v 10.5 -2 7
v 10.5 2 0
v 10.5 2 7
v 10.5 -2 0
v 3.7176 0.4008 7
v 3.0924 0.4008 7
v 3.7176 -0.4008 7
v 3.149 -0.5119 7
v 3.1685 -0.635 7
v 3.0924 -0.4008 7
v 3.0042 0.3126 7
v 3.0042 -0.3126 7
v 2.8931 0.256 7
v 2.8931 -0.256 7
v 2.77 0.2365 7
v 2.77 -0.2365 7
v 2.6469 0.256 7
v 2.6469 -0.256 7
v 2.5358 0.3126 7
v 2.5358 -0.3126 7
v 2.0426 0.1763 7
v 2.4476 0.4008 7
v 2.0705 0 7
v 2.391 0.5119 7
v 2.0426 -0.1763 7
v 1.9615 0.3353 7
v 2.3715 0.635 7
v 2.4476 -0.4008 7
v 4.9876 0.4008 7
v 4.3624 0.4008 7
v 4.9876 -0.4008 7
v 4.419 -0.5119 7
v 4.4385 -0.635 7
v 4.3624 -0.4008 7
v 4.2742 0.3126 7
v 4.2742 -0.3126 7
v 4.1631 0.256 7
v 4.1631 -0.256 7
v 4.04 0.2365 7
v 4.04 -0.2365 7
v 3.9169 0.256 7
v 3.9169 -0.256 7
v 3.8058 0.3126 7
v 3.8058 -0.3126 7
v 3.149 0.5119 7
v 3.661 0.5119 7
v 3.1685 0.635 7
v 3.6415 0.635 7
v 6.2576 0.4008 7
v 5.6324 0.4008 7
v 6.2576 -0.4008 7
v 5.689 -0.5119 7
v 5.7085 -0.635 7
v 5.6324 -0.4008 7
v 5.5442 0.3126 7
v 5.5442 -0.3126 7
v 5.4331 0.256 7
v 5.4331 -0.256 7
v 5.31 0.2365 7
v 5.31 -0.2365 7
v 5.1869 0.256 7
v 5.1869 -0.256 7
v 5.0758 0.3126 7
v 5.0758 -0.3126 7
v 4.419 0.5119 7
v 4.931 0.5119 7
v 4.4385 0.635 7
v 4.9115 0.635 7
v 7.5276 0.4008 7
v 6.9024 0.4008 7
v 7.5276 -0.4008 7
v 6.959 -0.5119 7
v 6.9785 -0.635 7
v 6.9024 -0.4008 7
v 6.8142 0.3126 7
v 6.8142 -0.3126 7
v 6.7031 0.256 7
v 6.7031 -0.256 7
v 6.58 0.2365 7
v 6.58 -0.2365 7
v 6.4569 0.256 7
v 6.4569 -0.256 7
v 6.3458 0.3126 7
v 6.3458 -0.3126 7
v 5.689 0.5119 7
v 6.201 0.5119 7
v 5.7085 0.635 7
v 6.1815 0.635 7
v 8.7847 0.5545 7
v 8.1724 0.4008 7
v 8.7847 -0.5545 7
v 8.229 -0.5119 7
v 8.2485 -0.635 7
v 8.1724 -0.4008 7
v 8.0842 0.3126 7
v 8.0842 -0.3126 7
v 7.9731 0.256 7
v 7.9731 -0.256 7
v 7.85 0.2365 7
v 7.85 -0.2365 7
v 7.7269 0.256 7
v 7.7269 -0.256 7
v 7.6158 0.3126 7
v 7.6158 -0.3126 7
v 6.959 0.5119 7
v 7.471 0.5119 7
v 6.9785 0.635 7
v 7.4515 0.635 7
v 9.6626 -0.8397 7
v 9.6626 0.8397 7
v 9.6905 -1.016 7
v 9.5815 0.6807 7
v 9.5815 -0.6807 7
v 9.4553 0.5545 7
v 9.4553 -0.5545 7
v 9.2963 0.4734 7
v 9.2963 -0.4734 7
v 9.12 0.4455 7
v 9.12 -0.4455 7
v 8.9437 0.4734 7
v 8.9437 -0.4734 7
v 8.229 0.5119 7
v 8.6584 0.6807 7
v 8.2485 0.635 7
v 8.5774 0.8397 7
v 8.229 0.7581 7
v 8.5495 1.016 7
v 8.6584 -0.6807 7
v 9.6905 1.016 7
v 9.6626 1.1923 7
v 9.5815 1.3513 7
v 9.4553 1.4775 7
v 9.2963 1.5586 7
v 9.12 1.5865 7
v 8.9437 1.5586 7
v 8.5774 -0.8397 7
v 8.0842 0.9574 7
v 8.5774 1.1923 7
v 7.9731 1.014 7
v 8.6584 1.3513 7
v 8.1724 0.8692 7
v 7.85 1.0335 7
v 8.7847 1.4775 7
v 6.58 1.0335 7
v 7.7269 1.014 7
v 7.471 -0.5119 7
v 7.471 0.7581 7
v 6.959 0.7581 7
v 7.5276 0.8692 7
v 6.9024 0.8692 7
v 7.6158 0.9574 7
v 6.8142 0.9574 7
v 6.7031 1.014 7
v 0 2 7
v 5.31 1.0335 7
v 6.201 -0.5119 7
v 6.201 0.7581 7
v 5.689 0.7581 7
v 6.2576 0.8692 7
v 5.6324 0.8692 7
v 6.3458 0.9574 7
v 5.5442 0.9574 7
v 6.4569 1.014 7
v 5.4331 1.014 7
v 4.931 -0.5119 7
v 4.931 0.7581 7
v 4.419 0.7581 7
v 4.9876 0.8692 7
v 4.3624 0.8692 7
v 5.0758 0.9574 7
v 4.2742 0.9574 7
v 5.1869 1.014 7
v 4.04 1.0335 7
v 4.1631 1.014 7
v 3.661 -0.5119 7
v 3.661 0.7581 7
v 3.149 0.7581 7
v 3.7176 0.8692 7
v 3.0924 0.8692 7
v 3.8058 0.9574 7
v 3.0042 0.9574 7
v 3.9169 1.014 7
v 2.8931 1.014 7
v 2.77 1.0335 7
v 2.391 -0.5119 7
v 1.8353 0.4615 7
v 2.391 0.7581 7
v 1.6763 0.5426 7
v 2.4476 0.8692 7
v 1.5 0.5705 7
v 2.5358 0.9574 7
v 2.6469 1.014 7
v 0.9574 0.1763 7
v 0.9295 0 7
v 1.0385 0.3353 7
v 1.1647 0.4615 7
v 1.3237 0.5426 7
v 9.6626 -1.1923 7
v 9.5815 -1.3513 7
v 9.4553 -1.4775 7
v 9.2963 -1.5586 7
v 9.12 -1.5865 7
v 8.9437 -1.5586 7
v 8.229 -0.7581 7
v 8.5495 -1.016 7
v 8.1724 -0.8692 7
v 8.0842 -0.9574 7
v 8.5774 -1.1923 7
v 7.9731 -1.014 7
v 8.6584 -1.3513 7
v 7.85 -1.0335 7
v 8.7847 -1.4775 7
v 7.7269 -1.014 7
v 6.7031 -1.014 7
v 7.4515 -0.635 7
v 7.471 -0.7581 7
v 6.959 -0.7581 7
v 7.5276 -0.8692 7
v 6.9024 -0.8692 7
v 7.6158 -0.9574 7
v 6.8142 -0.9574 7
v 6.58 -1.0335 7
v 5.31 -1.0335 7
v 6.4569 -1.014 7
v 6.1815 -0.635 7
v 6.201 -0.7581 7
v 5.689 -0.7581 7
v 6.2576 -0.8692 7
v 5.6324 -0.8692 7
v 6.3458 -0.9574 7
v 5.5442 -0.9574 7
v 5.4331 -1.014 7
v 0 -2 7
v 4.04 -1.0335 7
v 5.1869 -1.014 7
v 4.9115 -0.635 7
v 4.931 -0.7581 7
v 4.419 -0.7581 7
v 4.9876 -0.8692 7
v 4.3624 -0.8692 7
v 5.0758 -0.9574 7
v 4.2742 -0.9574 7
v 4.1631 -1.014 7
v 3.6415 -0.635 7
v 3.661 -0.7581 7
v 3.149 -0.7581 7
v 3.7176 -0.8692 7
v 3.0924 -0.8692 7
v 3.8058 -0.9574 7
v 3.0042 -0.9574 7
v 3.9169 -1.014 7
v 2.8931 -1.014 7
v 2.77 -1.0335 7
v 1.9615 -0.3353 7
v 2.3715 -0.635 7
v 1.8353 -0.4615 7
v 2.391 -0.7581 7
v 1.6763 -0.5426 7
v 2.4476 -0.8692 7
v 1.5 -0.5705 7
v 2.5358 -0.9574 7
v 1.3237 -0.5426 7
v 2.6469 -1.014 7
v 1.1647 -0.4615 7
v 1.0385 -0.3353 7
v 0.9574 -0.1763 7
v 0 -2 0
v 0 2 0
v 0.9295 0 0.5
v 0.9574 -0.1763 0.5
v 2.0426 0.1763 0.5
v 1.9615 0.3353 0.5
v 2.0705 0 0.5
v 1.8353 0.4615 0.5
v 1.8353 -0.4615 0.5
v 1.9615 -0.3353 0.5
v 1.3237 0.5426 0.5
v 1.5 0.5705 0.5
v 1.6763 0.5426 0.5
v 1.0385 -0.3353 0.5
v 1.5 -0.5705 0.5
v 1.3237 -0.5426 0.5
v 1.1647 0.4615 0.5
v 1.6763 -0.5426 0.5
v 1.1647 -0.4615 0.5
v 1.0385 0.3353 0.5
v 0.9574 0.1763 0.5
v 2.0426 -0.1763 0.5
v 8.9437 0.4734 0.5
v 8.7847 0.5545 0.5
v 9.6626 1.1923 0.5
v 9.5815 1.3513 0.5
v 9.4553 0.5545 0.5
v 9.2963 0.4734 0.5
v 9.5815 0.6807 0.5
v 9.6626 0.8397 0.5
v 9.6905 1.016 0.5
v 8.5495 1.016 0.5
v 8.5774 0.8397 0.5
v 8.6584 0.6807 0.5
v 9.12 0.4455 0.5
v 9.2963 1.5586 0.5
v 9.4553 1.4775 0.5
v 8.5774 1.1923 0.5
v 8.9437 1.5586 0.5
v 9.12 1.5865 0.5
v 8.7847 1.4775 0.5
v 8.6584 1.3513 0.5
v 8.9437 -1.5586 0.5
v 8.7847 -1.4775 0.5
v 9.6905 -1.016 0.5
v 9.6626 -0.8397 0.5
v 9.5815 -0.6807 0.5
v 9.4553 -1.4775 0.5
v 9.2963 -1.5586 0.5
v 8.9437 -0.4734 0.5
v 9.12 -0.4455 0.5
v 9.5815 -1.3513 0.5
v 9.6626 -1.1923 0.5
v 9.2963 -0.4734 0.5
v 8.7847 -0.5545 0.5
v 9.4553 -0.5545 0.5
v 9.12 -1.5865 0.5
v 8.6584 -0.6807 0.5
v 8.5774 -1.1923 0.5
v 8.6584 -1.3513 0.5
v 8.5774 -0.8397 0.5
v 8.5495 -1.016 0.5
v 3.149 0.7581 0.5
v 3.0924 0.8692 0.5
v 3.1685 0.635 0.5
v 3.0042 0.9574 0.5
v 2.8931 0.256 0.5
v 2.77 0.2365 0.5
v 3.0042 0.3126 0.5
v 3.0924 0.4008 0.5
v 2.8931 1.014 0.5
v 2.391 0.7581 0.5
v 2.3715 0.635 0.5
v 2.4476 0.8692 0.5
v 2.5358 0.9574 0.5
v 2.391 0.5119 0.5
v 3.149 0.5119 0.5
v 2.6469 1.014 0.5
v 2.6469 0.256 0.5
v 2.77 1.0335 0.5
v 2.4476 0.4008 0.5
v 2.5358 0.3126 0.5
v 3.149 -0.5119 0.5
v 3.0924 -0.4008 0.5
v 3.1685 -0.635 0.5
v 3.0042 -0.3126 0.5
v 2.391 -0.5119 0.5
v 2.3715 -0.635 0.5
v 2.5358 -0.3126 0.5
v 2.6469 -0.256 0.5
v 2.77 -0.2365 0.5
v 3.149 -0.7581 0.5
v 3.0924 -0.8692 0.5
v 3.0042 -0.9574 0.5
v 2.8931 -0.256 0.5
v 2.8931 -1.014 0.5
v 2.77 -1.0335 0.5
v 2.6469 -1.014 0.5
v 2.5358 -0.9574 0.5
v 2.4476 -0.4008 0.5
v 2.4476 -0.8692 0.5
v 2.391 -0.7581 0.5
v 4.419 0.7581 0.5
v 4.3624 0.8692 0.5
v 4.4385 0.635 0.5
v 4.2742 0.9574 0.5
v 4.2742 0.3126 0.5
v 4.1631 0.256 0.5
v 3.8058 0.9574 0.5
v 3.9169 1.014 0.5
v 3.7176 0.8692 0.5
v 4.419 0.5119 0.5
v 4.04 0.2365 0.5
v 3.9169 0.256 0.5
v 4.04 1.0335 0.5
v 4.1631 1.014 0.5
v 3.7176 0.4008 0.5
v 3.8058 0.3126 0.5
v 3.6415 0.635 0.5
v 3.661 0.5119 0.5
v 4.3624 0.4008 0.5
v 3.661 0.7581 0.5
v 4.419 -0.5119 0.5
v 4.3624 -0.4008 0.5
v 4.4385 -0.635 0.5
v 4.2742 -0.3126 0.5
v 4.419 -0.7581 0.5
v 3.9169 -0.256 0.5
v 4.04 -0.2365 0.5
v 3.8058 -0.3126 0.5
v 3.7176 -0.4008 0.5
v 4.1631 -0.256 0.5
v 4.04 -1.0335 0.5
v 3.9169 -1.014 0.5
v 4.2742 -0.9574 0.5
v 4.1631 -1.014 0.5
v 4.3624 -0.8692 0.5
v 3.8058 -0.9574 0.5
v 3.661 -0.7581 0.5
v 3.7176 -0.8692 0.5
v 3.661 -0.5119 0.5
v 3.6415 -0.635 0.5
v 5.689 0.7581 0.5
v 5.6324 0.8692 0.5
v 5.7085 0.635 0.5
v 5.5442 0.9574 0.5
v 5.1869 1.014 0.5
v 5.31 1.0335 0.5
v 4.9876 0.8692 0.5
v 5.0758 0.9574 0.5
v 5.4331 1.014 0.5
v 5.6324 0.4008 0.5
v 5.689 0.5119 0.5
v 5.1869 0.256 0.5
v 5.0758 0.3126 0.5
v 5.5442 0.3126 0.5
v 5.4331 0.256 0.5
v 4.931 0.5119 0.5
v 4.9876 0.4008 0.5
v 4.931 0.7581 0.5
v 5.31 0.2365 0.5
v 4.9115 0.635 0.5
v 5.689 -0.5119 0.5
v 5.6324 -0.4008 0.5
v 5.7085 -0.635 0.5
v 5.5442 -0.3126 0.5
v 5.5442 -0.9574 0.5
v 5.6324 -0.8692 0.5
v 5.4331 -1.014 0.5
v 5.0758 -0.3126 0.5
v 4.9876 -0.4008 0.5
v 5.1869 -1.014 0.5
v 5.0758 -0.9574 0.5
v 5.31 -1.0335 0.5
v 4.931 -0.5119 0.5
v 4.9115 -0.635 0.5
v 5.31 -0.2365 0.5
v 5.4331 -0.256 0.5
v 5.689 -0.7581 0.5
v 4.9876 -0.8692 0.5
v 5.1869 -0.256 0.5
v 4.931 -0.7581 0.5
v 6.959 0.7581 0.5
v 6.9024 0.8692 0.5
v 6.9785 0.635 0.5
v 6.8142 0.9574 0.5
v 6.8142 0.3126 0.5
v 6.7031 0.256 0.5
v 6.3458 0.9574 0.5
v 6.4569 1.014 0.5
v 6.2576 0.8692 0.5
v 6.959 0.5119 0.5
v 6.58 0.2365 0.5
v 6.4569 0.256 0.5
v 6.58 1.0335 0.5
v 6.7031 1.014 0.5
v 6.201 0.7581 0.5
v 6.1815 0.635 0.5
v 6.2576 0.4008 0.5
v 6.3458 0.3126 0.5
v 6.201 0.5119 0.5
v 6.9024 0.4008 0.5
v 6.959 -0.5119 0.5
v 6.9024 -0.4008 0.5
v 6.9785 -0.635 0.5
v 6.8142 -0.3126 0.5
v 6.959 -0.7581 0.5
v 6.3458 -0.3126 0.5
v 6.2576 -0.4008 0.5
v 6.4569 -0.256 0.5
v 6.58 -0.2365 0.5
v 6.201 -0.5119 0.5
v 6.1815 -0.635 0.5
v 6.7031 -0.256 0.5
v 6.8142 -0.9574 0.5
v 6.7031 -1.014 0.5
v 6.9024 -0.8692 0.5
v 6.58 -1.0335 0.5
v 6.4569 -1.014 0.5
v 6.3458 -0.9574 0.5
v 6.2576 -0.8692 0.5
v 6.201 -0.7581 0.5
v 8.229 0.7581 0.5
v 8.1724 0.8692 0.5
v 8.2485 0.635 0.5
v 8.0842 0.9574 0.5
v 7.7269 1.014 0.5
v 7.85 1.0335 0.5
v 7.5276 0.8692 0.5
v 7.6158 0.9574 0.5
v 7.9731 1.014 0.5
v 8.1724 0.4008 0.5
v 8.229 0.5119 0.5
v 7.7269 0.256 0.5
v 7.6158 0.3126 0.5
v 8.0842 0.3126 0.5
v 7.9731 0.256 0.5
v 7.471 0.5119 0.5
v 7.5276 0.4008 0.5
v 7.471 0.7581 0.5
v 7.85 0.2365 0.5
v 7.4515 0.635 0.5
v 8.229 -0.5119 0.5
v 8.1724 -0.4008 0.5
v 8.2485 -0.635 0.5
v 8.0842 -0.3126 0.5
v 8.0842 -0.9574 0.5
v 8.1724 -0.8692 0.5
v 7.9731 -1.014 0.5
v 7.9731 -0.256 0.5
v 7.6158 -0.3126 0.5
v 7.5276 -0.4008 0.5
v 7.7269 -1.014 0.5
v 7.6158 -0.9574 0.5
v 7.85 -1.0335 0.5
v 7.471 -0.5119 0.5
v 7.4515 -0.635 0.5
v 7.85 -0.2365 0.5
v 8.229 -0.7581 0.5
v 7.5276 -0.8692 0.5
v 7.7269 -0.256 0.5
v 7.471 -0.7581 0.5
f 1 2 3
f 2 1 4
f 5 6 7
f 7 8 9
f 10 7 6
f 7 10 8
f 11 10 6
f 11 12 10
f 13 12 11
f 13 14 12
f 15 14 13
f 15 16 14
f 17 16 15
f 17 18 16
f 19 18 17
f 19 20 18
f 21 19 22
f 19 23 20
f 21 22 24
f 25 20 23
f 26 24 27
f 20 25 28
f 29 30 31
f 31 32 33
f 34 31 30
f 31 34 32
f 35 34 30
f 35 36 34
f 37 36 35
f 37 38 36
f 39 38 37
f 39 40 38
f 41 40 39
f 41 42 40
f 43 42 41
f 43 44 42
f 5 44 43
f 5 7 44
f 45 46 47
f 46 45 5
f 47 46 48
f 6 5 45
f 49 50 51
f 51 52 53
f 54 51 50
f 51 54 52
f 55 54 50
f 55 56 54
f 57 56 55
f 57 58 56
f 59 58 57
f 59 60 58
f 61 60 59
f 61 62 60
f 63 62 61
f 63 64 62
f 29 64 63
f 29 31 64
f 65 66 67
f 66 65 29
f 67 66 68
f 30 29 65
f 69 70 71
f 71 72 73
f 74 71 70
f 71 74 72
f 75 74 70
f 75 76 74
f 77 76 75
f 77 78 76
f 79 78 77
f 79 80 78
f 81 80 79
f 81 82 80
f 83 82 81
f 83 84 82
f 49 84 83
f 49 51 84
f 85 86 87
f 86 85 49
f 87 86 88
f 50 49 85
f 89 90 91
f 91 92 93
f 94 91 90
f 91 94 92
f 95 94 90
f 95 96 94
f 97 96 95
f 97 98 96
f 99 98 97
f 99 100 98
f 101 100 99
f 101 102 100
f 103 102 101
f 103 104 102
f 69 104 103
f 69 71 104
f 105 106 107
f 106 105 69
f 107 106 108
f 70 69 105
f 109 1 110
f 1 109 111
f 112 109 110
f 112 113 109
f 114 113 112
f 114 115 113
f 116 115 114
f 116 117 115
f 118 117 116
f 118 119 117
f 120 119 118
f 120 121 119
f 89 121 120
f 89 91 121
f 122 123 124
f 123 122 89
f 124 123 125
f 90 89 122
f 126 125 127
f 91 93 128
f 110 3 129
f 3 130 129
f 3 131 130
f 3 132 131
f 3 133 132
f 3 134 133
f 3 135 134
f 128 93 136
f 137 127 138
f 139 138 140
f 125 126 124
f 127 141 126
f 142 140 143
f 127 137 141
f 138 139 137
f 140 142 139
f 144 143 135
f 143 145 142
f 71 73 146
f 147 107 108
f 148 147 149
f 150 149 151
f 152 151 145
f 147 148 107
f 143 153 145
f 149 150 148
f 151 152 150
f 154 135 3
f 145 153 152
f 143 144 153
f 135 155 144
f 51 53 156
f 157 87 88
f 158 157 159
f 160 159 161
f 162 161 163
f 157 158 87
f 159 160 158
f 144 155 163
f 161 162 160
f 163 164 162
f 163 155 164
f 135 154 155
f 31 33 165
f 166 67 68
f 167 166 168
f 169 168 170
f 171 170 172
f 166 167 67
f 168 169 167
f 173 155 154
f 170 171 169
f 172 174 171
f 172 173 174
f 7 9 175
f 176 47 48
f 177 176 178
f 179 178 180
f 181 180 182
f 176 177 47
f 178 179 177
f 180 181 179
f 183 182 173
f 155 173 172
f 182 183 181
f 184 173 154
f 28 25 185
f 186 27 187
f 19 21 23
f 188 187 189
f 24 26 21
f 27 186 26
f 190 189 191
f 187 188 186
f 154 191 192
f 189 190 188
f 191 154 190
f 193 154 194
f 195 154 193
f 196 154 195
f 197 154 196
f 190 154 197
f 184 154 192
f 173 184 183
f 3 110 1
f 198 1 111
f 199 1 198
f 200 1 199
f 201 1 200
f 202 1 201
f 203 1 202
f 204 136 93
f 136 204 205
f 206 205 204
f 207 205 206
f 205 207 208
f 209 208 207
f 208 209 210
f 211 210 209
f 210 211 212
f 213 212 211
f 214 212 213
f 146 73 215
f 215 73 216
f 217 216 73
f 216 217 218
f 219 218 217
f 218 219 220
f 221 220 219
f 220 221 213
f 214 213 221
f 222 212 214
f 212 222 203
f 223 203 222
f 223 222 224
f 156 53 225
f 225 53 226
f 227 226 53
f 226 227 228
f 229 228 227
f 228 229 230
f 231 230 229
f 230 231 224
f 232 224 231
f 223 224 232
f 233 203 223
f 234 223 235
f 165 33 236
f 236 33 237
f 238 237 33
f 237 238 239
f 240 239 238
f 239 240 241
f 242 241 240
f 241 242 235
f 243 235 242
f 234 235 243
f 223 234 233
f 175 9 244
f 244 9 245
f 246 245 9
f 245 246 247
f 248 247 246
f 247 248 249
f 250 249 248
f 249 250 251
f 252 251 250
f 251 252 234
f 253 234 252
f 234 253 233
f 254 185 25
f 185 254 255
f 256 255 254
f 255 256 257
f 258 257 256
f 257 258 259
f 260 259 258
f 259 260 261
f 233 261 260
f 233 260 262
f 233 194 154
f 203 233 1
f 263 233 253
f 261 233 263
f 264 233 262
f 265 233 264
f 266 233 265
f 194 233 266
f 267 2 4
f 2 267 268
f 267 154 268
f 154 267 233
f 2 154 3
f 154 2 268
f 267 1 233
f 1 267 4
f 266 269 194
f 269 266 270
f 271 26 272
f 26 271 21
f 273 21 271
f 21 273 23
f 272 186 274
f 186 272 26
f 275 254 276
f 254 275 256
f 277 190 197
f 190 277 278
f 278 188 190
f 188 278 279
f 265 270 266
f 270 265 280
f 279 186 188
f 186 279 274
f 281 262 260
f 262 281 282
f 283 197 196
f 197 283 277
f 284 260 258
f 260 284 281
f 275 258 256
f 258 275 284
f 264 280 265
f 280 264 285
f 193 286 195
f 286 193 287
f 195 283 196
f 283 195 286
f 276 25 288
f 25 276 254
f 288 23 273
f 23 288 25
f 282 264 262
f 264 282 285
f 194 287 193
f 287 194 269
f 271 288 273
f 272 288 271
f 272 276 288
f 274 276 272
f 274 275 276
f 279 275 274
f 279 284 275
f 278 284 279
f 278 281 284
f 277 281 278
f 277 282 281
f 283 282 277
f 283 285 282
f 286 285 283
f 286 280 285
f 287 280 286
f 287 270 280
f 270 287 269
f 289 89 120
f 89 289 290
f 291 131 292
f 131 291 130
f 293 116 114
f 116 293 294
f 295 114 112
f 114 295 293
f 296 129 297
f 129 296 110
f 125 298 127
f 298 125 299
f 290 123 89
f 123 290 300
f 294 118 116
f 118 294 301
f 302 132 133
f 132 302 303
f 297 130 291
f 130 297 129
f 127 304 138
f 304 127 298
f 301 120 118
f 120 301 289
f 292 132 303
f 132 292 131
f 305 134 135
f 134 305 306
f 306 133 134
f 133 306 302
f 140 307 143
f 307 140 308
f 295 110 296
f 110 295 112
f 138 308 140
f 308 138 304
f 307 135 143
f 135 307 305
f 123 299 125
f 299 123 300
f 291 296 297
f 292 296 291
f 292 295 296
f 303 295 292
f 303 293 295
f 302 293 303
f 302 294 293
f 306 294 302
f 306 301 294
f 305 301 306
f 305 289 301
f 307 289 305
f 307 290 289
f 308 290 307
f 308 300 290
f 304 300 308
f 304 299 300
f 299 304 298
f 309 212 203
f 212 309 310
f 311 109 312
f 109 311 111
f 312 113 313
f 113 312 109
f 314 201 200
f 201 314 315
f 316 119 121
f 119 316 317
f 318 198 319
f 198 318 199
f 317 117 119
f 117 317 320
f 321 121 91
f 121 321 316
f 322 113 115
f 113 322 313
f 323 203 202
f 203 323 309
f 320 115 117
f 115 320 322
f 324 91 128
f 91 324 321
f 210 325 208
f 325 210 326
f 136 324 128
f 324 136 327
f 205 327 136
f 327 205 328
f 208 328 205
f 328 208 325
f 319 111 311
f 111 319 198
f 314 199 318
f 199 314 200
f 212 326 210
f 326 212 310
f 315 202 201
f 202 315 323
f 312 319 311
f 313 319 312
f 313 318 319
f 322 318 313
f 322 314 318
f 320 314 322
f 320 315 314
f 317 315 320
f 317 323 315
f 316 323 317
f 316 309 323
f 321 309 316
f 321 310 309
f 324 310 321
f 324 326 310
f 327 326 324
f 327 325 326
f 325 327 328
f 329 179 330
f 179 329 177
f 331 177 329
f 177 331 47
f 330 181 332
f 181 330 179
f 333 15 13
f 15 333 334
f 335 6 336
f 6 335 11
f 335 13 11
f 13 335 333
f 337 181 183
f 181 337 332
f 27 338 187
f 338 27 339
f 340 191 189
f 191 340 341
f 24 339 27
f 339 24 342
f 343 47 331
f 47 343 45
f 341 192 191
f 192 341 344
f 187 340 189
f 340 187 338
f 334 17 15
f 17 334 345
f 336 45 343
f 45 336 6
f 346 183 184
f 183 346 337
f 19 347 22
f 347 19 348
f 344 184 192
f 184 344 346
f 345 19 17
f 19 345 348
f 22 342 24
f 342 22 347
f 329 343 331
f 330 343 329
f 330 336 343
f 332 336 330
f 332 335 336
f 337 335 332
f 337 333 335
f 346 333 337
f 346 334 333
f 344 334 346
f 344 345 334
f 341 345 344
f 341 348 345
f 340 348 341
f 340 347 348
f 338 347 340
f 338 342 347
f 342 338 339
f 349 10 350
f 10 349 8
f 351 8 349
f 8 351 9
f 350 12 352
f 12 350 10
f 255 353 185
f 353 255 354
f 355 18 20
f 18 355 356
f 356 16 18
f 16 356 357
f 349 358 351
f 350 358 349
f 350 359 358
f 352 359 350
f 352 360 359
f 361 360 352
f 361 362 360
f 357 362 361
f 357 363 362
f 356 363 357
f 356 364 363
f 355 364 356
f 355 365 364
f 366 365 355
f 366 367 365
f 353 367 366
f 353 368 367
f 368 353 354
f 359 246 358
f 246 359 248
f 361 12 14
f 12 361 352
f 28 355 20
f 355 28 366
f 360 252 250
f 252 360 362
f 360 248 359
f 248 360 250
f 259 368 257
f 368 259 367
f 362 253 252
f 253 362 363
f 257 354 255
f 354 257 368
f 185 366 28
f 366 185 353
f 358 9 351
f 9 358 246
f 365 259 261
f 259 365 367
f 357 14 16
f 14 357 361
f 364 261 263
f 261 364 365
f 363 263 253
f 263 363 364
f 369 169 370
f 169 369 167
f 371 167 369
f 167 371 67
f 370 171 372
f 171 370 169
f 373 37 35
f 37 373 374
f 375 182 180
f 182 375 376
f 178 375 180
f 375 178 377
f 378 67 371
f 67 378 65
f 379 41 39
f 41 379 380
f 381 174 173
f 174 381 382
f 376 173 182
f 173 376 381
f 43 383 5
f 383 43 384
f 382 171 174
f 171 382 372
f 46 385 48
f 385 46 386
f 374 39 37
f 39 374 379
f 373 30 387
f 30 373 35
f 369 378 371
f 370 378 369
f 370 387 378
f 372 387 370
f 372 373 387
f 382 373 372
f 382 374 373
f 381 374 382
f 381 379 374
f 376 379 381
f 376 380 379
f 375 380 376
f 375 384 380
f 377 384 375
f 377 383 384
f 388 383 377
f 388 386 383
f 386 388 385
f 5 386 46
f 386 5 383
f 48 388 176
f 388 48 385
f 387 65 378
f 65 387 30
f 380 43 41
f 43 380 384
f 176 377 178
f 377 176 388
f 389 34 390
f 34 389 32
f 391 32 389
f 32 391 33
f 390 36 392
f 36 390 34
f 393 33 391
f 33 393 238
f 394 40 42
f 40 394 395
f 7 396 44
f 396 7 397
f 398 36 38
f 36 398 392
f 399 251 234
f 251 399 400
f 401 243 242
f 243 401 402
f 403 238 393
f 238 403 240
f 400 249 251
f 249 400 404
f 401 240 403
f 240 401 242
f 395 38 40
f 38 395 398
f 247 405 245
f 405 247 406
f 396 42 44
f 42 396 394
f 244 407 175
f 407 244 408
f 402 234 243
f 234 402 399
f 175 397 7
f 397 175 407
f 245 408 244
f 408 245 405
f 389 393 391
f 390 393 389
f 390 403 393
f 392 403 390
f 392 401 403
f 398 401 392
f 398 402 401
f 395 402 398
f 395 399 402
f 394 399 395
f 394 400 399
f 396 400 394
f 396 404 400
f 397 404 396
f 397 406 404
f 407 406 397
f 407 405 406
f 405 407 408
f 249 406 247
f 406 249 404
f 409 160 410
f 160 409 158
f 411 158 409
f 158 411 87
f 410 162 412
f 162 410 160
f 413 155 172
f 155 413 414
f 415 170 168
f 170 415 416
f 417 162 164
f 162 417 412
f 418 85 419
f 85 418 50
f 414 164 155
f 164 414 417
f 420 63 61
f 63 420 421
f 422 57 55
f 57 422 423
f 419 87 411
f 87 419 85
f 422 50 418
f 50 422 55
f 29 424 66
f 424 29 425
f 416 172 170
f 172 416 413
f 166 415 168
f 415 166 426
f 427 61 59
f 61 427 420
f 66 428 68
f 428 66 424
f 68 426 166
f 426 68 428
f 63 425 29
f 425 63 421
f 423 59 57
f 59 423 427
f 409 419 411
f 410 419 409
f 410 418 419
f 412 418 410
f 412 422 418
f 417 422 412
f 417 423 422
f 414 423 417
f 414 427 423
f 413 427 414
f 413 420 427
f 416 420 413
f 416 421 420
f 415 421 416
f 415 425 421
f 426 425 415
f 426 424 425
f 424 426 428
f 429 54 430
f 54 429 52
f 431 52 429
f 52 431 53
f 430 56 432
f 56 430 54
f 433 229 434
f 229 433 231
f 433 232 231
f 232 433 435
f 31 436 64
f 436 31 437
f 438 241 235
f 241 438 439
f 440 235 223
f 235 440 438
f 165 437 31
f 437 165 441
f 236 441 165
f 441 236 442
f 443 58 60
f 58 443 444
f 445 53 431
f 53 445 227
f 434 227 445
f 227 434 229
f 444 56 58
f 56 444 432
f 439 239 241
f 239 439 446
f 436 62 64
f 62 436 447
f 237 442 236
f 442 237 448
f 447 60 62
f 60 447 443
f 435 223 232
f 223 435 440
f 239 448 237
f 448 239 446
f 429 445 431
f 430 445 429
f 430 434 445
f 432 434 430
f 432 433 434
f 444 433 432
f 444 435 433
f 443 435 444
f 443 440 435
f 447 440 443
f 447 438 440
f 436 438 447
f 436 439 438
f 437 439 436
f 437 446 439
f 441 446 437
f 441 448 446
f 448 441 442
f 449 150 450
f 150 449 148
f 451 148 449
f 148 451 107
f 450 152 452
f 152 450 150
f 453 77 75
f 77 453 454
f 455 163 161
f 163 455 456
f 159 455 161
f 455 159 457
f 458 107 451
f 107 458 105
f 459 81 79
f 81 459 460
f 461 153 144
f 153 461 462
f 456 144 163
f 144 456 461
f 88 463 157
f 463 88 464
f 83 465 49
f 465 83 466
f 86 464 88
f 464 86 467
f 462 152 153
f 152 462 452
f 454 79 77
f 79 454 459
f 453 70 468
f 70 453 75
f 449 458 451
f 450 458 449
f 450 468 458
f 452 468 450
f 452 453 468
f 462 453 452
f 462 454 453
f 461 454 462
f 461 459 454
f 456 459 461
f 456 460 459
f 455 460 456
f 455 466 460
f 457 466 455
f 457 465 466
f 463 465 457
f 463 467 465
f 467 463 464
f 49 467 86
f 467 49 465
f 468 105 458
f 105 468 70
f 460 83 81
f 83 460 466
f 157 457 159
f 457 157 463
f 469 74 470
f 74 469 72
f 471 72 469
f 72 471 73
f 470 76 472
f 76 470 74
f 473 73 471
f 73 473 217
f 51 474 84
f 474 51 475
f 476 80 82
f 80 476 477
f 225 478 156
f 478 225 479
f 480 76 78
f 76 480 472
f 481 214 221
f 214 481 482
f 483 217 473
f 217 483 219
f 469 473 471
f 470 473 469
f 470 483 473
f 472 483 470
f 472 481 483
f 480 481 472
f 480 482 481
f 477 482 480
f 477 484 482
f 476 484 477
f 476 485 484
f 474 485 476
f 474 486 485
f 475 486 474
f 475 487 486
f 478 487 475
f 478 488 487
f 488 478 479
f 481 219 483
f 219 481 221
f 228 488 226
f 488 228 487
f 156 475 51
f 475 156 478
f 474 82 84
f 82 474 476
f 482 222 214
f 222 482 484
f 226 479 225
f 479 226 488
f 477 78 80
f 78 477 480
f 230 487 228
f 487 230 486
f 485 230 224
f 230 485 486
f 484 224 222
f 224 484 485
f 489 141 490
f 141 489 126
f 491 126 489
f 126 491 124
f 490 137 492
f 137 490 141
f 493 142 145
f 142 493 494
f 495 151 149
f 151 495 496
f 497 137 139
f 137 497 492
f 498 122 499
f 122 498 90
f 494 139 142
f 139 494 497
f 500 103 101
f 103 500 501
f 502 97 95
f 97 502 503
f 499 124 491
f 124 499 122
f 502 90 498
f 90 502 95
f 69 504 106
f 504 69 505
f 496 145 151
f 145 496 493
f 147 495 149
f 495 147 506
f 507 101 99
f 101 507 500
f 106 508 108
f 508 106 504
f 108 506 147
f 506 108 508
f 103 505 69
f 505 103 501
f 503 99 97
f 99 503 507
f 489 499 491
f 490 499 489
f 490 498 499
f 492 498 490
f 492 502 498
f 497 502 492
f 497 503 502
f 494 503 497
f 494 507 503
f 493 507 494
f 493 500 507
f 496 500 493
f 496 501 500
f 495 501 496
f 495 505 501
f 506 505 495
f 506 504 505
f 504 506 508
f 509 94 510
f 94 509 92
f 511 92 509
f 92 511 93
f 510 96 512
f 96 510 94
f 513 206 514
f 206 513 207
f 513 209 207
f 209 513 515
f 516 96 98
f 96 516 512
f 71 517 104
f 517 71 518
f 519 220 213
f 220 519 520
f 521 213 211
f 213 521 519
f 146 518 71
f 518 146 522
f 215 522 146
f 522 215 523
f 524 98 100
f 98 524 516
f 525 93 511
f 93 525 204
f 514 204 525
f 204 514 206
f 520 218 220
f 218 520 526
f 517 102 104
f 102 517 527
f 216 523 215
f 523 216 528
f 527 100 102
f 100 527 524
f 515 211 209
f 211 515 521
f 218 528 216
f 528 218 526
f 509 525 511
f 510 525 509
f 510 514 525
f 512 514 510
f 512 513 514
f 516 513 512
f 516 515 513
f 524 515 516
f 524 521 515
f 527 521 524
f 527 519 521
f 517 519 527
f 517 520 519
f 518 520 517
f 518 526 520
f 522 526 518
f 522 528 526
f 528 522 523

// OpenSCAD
// from https://www.thingiverse.com/thing:3035278/files
$fn=20;

isx = 1.5;       // Inital Spacing X

a_dia_tol = 0.15;  // Alignment Hole Tolerance
p_dia_tol = 0.01; // Probe Hole Tolerance

align_pin_dia = 0.991+a_dia_tol; // Alignment Pin Diamenter
probe_pin_dia = 0.787+p_dia_tol; // Probe Pin Diameter

/* Probe Clip Dimention */
boxx = 10.5;
boxy = 4;
boxh = 7;
his = 0.5; // Alignment/Probe hole offset height spacing

/* Probe Pair Spacing */
pps = 1.270;// mm probe pair spacing
pys = 0.635; // Probe spacing from x axis along y axis

/* Align Hole Calc */
ap1xs   = isx;        // Align pin 1 x spacing
ap2a3xs = ap1xs+pps*6; // Align pin 2&3 x spacing
ap2a3ys = 1.016;

/* Probe Shield */
// http://www.tag-connect.com/Materials/TC2030-IDC.pdf
pss = ap1xs + pps - (probe_pin_dia/2);
psx = pps*2 + probe_pin_dia;
psy = 1.016*2;

/* Probe Pair Space Calc */
pp1s = ap1xs + pps*1; // mm spacing 
pp2s = ap1xs + pps*2; // mm spacing 
pp3s = ap1xs + pps*3; // mm spacing 
pp4s = ap1xs + pps*4; // mm spacing 
pp5s = ap1xs + pps*5; // mm spacing 
probe_pit_y = pys*2 + probe_pin_dia; // 

/* loop */
loop_length = 50;
loop_height = 0.4;
loop_width = boxy;
loop_hole_w = 2.5; // hole width
loop_hole_l = 30;
loop_hole_s = 2;

loop_loy = loop_hole_w + 2*loop_hole_s;

/* 3D Model */
difference() {
translate([0  , -boxy/2  , 0])
        /* Main Plug */
        cube([boxx,boxy,boxh]);

/* Align Hole */
#translate([ap1xs   , 0         , his])
    cylinder(r=align_pin_dia/2, h=boxh);
#translate([ap2a3xs , +ap2a3ys  , his])
    cylinder(r=align_pin_dia/2, h=boxh);
#translate([ap2a3xs , -ap2a3ys  , his])
    cylinder(r=align_pin_dia/2, h=boxh);

/* Probe Pair 1 */
#translate([pp1s, +pys  , his])
    cylinder(r=probe_pin_dia/2, h=boxh);
#translate([pp1s, -pys  , his])
    cylinder(r=probe_pin_dia/2, h=boxh);
/* Probe Pair 2 */
#translate([pp2s, +pys  , his])
    cylinder(r=probe_pin_dia/2, h=boxh);
#translate([pp2s, -pys  , his])
    cylinder(r=probe_pin_dia/2, h=boxh);
/* Probe Pair 3 */
#translate([pp3s, +pys  , his])
    cylinder(r=probe_pin_dia/2, h=boxh);
#translate([pp3s, -pys  , his])
    cylinder(r=probe_pin_dia/2, h=boxh);
/* Probe Pair 4 */
#translate([pp4s, +pys  , his])
    cylinder(r=probe_pin_dia/2, h=boxh);
#translate([pp4s, -pys  , his])
    cylinder(r=probe_pin_dia/2, h=boxh);
/* Probe Pair 5 */
#translate([pp5s, +pys  , his])
    cylinder(r=probe_pin_dia/2, h=boxh);
#translate([pp5s, -pys  , his])
    cylinder(r=probe_pin_dia/2, h=boxh);
}
